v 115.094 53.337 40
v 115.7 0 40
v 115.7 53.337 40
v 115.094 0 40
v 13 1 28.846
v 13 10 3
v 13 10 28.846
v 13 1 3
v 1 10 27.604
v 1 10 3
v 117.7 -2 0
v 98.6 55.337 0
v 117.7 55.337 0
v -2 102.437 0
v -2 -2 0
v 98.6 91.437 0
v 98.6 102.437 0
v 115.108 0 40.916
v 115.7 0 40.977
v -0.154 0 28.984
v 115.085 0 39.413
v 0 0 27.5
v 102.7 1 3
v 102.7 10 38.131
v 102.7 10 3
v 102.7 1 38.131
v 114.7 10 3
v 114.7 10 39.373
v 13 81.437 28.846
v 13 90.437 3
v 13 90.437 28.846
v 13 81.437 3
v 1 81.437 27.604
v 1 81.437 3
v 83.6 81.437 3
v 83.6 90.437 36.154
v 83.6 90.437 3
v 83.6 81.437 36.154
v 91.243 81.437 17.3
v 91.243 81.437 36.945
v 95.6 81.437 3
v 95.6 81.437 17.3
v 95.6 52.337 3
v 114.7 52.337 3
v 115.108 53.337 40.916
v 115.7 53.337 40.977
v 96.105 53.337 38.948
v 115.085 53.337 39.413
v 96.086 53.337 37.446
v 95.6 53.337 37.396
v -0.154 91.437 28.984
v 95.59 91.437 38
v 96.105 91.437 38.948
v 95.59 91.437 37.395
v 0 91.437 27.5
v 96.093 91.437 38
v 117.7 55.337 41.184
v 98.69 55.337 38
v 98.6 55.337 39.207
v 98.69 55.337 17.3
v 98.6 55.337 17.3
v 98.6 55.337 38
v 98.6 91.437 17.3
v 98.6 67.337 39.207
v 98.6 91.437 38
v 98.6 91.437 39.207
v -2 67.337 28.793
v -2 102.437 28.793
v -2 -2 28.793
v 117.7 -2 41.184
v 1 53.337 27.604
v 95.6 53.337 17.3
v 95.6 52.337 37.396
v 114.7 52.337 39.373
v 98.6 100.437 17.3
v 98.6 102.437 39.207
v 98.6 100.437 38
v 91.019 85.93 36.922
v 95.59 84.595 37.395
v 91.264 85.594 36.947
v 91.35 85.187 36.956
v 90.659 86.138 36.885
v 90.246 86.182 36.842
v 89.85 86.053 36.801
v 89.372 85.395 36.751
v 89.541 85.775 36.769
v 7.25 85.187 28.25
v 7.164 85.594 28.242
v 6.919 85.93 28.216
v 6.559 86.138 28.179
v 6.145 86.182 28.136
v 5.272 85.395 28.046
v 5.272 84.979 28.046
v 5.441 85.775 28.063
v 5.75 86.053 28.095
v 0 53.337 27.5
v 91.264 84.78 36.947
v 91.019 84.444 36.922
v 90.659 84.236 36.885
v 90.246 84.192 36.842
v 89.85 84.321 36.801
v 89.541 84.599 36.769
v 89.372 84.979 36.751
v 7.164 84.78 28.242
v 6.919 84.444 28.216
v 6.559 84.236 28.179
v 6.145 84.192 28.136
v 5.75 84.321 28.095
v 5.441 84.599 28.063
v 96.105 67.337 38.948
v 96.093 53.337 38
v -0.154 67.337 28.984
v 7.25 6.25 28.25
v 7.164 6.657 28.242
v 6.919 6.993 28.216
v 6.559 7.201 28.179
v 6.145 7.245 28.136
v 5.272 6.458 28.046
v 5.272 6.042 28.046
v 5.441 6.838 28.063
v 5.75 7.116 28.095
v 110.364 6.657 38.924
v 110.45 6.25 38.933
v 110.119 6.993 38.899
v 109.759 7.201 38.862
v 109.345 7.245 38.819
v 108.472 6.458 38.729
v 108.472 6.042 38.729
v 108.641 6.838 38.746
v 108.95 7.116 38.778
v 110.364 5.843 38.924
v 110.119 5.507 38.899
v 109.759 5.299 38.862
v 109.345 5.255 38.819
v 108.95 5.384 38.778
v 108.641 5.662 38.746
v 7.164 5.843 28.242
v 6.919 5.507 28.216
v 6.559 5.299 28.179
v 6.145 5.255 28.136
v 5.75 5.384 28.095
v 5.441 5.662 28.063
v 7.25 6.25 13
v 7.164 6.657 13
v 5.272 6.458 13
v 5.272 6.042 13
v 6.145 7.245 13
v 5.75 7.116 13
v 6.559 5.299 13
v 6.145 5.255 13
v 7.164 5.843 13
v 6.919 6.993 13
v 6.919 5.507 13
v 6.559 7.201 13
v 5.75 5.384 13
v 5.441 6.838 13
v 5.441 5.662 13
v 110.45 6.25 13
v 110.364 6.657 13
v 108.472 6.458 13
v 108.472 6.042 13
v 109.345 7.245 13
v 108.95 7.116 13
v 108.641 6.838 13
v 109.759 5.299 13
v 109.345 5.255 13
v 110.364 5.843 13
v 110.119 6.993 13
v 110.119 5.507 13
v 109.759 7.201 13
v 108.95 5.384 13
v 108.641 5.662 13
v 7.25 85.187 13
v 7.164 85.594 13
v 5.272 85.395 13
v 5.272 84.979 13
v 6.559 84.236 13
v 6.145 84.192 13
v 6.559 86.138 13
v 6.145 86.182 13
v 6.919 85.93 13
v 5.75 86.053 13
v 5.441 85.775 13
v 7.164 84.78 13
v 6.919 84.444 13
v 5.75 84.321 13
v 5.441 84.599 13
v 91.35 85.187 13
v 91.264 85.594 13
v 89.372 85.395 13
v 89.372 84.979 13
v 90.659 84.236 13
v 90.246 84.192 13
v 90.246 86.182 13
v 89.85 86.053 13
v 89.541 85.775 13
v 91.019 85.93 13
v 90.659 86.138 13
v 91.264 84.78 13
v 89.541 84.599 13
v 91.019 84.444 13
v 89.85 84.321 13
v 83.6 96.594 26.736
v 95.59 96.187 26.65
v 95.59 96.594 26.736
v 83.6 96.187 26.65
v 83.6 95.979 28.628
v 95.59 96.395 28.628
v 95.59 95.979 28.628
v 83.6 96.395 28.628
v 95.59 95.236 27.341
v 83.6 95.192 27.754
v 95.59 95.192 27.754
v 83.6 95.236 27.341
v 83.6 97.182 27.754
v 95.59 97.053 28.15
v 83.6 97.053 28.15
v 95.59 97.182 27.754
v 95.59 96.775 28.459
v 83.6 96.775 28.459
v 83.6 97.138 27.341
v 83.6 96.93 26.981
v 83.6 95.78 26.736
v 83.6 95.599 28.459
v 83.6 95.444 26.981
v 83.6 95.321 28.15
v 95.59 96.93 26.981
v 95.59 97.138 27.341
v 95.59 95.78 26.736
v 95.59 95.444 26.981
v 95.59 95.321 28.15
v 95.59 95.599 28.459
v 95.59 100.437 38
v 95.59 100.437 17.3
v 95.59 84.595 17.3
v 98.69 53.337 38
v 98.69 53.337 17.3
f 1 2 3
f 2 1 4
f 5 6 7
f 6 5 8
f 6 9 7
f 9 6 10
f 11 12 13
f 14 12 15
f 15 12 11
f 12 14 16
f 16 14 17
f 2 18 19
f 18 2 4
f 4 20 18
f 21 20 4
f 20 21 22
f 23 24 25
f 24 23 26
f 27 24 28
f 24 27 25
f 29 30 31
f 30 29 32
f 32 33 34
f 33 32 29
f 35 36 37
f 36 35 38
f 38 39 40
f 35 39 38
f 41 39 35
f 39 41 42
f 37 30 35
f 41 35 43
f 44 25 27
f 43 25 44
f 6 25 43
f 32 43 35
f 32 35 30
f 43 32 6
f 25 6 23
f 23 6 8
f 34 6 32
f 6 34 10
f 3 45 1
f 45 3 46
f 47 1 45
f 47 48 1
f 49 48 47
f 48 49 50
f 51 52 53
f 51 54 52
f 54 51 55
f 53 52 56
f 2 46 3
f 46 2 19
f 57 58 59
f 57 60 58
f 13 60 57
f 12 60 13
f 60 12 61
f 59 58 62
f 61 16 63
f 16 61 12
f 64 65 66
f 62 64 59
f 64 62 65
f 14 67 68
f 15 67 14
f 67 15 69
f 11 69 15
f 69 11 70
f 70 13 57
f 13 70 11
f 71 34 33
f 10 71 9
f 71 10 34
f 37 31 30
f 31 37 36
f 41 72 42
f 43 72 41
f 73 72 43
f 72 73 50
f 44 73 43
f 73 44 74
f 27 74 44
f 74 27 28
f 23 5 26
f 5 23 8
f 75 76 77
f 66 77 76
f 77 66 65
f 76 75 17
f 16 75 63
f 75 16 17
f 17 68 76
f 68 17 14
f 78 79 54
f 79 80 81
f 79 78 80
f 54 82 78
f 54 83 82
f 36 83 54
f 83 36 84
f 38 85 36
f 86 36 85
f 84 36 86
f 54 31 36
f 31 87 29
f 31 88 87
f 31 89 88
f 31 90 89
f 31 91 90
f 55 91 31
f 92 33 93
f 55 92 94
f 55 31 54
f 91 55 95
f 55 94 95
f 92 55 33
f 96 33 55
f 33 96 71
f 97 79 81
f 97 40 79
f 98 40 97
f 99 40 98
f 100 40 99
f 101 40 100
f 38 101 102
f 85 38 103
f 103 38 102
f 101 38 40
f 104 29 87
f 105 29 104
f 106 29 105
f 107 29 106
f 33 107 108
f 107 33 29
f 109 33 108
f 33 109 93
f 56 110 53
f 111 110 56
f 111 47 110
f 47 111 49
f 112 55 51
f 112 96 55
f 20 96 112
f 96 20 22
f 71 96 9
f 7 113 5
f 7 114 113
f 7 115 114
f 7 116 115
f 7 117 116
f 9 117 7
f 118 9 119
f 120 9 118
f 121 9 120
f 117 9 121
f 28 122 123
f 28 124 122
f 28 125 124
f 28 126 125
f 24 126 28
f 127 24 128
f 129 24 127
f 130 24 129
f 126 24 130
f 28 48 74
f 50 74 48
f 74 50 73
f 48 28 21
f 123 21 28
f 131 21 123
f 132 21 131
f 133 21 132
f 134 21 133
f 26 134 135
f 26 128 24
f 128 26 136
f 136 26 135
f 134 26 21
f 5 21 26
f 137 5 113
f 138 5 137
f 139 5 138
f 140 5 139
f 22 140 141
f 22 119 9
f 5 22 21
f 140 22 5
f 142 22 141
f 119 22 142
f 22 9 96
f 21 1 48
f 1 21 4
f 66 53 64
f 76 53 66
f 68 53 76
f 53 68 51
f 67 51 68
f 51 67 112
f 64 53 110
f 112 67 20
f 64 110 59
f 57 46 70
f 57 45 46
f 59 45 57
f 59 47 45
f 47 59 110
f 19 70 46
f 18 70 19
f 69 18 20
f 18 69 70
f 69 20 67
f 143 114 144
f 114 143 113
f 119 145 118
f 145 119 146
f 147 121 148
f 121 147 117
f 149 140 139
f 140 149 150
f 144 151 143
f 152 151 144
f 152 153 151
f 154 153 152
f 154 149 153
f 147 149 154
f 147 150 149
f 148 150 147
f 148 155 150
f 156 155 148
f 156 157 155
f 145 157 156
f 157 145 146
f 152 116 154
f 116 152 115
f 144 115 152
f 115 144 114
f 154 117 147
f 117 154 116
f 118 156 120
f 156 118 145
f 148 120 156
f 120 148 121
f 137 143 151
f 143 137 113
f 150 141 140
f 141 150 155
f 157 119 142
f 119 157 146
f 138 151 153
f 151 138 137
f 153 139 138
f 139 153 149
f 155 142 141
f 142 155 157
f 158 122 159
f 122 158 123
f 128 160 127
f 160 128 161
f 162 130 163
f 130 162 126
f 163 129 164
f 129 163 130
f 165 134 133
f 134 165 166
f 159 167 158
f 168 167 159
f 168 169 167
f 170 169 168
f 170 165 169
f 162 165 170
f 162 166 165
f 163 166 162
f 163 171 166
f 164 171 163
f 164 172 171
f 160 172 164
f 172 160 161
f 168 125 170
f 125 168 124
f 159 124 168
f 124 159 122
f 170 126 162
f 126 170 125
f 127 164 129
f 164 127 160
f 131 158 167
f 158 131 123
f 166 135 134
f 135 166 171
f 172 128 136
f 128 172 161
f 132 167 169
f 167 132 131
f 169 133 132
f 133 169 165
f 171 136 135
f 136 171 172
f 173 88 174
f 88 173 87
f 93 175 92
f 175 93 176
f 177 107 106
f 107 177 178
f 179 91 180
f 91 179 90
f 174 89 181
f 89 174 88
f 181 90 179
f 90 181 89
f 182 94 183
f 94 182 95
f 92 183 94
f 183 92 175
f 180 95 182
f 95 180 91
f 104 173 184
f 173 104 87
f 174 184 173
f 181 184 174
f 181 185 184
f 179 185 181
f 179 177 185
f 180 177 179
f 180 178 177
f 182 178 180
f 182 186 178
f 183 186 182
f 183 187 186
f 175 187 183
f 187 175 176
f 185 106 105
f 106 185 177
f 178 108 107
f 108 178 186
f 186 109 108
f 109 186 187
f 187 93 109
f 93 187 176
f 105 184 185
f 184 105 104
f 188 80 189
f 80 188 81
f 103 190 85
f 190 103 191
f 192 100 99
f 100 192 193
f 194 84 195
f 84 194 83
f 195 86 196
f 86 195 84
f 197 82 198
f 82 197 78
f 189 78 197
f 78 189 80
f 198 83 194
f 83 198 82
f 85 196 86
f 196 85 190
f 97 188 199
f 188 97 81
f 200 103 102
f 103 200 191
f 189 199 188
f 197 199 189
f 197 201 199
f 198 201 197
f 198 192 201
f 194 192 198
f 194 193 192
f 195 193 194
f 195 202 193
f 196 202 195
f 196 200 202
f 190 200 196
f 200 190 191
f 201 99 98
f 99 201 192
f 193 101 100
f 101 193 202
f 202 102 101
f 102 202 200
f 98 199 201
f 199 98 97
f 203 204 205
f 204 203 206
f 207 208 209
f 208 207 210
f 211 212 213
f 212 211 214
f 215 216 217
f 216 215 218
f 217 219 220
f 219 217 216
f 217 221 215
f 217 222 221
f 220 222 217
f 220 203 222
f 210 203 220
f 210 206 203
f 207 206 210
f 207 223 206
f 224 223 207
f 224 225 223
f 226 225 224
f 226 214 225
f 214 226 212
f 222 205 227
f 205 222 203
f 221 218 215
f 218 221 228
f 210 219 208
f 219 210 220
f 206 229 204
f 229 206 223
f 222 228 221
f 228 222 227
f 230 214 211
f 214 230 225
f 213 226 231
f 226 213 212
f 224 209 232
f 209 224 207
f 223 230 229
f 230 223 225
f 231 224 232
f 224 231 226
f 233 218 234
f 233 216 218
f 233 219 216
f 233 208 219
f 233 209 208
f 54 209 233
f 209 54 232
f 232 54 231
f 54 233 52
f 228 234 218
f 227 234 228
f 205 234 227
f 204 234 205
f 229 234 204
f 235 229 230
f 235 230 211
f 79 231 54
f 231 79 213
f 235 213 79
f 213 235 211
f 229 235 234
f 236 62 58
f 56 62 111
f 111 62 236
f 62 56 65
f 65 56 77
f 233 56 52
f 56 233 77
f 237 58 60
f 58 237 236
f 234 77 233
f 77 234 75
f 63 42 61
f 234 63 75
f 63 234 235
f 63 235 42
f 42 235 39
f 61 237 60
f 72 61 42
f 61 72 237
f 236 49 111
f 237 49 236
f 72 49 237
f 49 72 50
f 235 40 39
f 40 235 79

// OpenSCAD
CASE_H = 91.437;
CASE_W = 115.7;
CASE_TILT = 10;
CASE_DEPTH = 40;
CASE_TOP_H = 53.337;
CASE_BOTTOM_H = 38.1;
CASE_LEFT_W = 19.1;
CASE_RIGHT_W = 96.6;
CASE_BOTTOM_HEIGHT = 3;
PLATE_THICKNESS = 1.5;
PLATE_OUTER_BORDER = 2;
PLATE_INNER_BORDER = 1;

PILLAR_WIDTH = 13;
PILLAR_HEIGHT = 10;
HOLE_RADIUS = 1;
HOLE_MARGIN = 6.25;
SP_HOLE_MARGIN_H = 4.25;

SIDE_PLATE_W = 20.7;
SIDE_PLATE_H = 47.1;
SP_ALIGN_OFFSET = 2;

SUPPORT_H = SIDE_PLATE_H - CASE_BOTTOM_H + 2*PLATE_OUTER_BORDER - SP_ALIGN_OFFSET;
SUPPORT_W = CASE_RIGHT_W + 2*PLATE_OUTER_BORDER;



// Case
difference() {
    union() {
        points = [[0,0], [0,CASE_H], [CASE_RIGHT_W,CASE_H], [CASE_RIGHT_W,CASE_TOP_H], [CASE_W,CASE_TOP_H], [CASE_W, 0] ];
        
        // Bottom
        color([0,1,0])
        linear_extrude(height=CASE_BOTTOM_HEIGHT, twist=0)
        polygon(points);
        
        color([0,1,1])
        // Border wall
        linear_extrude(height=CASE_DEPTH + PLATE_THICKNESS, twist=0) {
            difference() {
                 offset(delta = PLATE_OUTER_BORDER) {
                     polygon(points);
                 }
                 polygon(points);
            }
        }
        
        color([1,0.6,0.5])
        // Support wall
        linear_extrude(height=CASE_DEPTH, twist=0) {
            difference() {
                 polygon(points);
                 offset(delta = -PLATE_INNER_BORDER) {
                     polygon(points);
                 }
            }
        }
        
        // Pillars
        color([1,1,1])
        union() {
            cube([PILLAR_WIDTH, PILLAR_HEIGHT, CASE_DEPTH]);
            translate ([CASE_W - PILLAR_WIDTH, 0, 0]) {
                cube([PILLAR_WIDTH, PILLAR_HEIGHT, CASE_DEPTH]);
            }
            translate ([0, CASE_H - PILLAR_HEIGHT, 0]) {
                cube([PILLAR_WIDTH, PILLAR_HEIGHT, CASE_DEPTH]);
            }
            translate ([CASE_RIGHT_W - PILLAR_WIDTH, CASE_H - PILLAR_HEIGHT, 0]) {
                cube([PILLAR_WIDTH, PILLAR_HEIGHT, CASE_DEPTH]);
            }
        }
        
        // Support
        color([1,0.1,1])
        translate ([-PLATE_OUTER_BORDER, CASE_H, 0]) {
            cube([SUPPORT_W, SUPPORT_H, CASE_DEPTH]);
        }
    }
        
    // Cut tilted for inner support
    color([1,0,0])
    union() {
        hull() {
            points1 = [[0,0], [0,CASE_H], [CASE_RIGHT_W,CASE_H], [CASE_RIGHT_W,0]];
            translate([0, 0, CASE_DEPTH - PLATE_THICKNESS - 11]) {
                rotate([0, -5.91, 0]) {
                    linear_extrude(height=PLATE_THICKNESS, twist=0)
                    polygon(points1);
                }
            }

            translate([0, 0, CASE_DEPTH*2]) {
                linear_extrude(height=PLATE_THICKNESS, twist=0)
                polygon(points1);
            }
        }
        
        hull() {
            points2 = [[0,0], [0,CASE_TOP_H], [CASE_W,CASE_TOP_H], [CASE_W,0]];
            translate([0, 0, CASE_DEPTH - PLATE_THICKNESS - 11]) {
                rotate([0, -5.91, 0]) {
                    linear_extrude(height=PLATE_THICKNESS, twist=0)
                    polygon(points2);
                }
            }

            translate([0, 0, CASE_DEPTH*2]) {
                linear_extrude(height=PLATE_THICKNESS, twist=0)
                polygon(points2);
            }
        }
    }

    // Cut tilted for outer border
    color([0,0,1])
    union() {
        translate([0,0,PLATE_THICKNESS]) {
            hull() {
                points1 = [[0,0], [0,CASE_H], [CASE_RIGHT_W,CASE_H], [CASE_RIGHT_W,0]];
                translate([0, 0, CASE_DEPTH - PLATE_THICKNESS - 11]) {
                    rotate([0, -5.91, 0]) {
                        linear_extrude(height=PLATE_THICKNESS, twist=0)
                        offset(delta=14) {
                            polygon(points1);
                        }
                    }
                }

                translate([0, 0, CASE_DEPTH*2]) {
                    linear_extrude(height=PLATE_THICKNESS, twist=0)
                    offset(delta=14) {
                        polygon(points1);
                    }
                }
            }
            
            hull() {
                points2 = [[0,0], [0,CASE_TOP_H], [CASE_W,CASE_TOP_H], [CASE_W,0]];
                translate([0, 0, CASE_DEPTH - PLATE_THICKNESS - 11]) {
                    rotate([0, -5.91, 0]) {
                        linear_extrude(height=PLATE_THICKNESS, twist=0)
                        offset(delta=14) {
                            polygon(points2);
                        }
                    }
                }

                translate([0, 0, CASE_DEPTH*2]) {
                    linear_extrude(height=PLATE_THICKNESS, twist=0)
                    offset(delta=14) {
                        polygon(points2);
                    }
                }
            }
        }
    }

    
    // Holes
    color([1,0,1])
    union() {
        translate([HOLE_MARGIN, HOLE_MARGIN, CASE_BOTTOM_HEIGHT+10]) {
            cylinder(h=CASE_DEPTH*2, r1=HOLE_RADIUS, r2=HOLE_RADIUS, $fn=15);
        }
        
        translate([CASE_W-HOLE_MARGIN, HOLE_MARGIN, CASE_BOTTOM_HEIGHT+10]) {
            cylinder(h=CASE_DEPTH*2, r1=HOLE_RADIUS, r2=HOLE_RADIUS, $fn=15);
        }
        
        translate([HOLE_MARGIN, CASE_H-HOLE_MARGIN, CASE_BOTTOM_HEIGHT+10]) {
            cylinder(h=CASE_DEPTH*2, r1=HOLE_RADIUS, r2=HOLE_RADIUS, $fn=15);
        }
        
        translate([CASE_RIGHT_W-HOLE_MARGIN, CASE_H-HOLE_MARGIN, CASE_BOTTOM_HEIGHT+10]) {
            cylinder(h=CASE_DEPTH*2, r1=HOLE_RADIUS, r2=HOLE_RADIUS, $fn=15);
        }
        
        translate([CASE_RIGHT_W-PILLAR_WIDTH, CASE_H+SUPPORT_H-PLATE_OUTER_BORDER-SP_HOLE_MARGIN_H, CASE_DEPTH-PLATE_OUTER_BORDER-SIDE_PLATE_W/2]) {
            rotate([0,90,0]) {
                cylinder(h=PILLAR_WIDTH, r1=HOLE_RADIUS, r2=HOLE_RADIUS, $fn=15);
            }
        }
        
    }
    
    // Side plate
    translate([CASE_RIGHT_W-PLATE_INNER_BORDER-0.01, CASE_TOP_H+PLATE_OUTER_BORDER-SP_ALIGN_OFFSET, CASE_DEPTH-PLATE_OUTER_BORDER-SIDE_PLATE_W]) {
        cube([PLATE_OUTER_BORDER+PLATE_INNER_BORDER+0.1, SIDE_PLATE_H, SIDE_PLATE_W]);
    }
    
    // Cut pillar
    translate([CASE_RIGHT_W-11, CASE_TOP_H+24, CASE_DEPTH-PLATE_OUTER_BORDER-SIDE_PLATE_W]) {
        rotate([0,0,-54]) {
        cube([5, 20, SIDE_PLATE_W]);
        }
    }
}
